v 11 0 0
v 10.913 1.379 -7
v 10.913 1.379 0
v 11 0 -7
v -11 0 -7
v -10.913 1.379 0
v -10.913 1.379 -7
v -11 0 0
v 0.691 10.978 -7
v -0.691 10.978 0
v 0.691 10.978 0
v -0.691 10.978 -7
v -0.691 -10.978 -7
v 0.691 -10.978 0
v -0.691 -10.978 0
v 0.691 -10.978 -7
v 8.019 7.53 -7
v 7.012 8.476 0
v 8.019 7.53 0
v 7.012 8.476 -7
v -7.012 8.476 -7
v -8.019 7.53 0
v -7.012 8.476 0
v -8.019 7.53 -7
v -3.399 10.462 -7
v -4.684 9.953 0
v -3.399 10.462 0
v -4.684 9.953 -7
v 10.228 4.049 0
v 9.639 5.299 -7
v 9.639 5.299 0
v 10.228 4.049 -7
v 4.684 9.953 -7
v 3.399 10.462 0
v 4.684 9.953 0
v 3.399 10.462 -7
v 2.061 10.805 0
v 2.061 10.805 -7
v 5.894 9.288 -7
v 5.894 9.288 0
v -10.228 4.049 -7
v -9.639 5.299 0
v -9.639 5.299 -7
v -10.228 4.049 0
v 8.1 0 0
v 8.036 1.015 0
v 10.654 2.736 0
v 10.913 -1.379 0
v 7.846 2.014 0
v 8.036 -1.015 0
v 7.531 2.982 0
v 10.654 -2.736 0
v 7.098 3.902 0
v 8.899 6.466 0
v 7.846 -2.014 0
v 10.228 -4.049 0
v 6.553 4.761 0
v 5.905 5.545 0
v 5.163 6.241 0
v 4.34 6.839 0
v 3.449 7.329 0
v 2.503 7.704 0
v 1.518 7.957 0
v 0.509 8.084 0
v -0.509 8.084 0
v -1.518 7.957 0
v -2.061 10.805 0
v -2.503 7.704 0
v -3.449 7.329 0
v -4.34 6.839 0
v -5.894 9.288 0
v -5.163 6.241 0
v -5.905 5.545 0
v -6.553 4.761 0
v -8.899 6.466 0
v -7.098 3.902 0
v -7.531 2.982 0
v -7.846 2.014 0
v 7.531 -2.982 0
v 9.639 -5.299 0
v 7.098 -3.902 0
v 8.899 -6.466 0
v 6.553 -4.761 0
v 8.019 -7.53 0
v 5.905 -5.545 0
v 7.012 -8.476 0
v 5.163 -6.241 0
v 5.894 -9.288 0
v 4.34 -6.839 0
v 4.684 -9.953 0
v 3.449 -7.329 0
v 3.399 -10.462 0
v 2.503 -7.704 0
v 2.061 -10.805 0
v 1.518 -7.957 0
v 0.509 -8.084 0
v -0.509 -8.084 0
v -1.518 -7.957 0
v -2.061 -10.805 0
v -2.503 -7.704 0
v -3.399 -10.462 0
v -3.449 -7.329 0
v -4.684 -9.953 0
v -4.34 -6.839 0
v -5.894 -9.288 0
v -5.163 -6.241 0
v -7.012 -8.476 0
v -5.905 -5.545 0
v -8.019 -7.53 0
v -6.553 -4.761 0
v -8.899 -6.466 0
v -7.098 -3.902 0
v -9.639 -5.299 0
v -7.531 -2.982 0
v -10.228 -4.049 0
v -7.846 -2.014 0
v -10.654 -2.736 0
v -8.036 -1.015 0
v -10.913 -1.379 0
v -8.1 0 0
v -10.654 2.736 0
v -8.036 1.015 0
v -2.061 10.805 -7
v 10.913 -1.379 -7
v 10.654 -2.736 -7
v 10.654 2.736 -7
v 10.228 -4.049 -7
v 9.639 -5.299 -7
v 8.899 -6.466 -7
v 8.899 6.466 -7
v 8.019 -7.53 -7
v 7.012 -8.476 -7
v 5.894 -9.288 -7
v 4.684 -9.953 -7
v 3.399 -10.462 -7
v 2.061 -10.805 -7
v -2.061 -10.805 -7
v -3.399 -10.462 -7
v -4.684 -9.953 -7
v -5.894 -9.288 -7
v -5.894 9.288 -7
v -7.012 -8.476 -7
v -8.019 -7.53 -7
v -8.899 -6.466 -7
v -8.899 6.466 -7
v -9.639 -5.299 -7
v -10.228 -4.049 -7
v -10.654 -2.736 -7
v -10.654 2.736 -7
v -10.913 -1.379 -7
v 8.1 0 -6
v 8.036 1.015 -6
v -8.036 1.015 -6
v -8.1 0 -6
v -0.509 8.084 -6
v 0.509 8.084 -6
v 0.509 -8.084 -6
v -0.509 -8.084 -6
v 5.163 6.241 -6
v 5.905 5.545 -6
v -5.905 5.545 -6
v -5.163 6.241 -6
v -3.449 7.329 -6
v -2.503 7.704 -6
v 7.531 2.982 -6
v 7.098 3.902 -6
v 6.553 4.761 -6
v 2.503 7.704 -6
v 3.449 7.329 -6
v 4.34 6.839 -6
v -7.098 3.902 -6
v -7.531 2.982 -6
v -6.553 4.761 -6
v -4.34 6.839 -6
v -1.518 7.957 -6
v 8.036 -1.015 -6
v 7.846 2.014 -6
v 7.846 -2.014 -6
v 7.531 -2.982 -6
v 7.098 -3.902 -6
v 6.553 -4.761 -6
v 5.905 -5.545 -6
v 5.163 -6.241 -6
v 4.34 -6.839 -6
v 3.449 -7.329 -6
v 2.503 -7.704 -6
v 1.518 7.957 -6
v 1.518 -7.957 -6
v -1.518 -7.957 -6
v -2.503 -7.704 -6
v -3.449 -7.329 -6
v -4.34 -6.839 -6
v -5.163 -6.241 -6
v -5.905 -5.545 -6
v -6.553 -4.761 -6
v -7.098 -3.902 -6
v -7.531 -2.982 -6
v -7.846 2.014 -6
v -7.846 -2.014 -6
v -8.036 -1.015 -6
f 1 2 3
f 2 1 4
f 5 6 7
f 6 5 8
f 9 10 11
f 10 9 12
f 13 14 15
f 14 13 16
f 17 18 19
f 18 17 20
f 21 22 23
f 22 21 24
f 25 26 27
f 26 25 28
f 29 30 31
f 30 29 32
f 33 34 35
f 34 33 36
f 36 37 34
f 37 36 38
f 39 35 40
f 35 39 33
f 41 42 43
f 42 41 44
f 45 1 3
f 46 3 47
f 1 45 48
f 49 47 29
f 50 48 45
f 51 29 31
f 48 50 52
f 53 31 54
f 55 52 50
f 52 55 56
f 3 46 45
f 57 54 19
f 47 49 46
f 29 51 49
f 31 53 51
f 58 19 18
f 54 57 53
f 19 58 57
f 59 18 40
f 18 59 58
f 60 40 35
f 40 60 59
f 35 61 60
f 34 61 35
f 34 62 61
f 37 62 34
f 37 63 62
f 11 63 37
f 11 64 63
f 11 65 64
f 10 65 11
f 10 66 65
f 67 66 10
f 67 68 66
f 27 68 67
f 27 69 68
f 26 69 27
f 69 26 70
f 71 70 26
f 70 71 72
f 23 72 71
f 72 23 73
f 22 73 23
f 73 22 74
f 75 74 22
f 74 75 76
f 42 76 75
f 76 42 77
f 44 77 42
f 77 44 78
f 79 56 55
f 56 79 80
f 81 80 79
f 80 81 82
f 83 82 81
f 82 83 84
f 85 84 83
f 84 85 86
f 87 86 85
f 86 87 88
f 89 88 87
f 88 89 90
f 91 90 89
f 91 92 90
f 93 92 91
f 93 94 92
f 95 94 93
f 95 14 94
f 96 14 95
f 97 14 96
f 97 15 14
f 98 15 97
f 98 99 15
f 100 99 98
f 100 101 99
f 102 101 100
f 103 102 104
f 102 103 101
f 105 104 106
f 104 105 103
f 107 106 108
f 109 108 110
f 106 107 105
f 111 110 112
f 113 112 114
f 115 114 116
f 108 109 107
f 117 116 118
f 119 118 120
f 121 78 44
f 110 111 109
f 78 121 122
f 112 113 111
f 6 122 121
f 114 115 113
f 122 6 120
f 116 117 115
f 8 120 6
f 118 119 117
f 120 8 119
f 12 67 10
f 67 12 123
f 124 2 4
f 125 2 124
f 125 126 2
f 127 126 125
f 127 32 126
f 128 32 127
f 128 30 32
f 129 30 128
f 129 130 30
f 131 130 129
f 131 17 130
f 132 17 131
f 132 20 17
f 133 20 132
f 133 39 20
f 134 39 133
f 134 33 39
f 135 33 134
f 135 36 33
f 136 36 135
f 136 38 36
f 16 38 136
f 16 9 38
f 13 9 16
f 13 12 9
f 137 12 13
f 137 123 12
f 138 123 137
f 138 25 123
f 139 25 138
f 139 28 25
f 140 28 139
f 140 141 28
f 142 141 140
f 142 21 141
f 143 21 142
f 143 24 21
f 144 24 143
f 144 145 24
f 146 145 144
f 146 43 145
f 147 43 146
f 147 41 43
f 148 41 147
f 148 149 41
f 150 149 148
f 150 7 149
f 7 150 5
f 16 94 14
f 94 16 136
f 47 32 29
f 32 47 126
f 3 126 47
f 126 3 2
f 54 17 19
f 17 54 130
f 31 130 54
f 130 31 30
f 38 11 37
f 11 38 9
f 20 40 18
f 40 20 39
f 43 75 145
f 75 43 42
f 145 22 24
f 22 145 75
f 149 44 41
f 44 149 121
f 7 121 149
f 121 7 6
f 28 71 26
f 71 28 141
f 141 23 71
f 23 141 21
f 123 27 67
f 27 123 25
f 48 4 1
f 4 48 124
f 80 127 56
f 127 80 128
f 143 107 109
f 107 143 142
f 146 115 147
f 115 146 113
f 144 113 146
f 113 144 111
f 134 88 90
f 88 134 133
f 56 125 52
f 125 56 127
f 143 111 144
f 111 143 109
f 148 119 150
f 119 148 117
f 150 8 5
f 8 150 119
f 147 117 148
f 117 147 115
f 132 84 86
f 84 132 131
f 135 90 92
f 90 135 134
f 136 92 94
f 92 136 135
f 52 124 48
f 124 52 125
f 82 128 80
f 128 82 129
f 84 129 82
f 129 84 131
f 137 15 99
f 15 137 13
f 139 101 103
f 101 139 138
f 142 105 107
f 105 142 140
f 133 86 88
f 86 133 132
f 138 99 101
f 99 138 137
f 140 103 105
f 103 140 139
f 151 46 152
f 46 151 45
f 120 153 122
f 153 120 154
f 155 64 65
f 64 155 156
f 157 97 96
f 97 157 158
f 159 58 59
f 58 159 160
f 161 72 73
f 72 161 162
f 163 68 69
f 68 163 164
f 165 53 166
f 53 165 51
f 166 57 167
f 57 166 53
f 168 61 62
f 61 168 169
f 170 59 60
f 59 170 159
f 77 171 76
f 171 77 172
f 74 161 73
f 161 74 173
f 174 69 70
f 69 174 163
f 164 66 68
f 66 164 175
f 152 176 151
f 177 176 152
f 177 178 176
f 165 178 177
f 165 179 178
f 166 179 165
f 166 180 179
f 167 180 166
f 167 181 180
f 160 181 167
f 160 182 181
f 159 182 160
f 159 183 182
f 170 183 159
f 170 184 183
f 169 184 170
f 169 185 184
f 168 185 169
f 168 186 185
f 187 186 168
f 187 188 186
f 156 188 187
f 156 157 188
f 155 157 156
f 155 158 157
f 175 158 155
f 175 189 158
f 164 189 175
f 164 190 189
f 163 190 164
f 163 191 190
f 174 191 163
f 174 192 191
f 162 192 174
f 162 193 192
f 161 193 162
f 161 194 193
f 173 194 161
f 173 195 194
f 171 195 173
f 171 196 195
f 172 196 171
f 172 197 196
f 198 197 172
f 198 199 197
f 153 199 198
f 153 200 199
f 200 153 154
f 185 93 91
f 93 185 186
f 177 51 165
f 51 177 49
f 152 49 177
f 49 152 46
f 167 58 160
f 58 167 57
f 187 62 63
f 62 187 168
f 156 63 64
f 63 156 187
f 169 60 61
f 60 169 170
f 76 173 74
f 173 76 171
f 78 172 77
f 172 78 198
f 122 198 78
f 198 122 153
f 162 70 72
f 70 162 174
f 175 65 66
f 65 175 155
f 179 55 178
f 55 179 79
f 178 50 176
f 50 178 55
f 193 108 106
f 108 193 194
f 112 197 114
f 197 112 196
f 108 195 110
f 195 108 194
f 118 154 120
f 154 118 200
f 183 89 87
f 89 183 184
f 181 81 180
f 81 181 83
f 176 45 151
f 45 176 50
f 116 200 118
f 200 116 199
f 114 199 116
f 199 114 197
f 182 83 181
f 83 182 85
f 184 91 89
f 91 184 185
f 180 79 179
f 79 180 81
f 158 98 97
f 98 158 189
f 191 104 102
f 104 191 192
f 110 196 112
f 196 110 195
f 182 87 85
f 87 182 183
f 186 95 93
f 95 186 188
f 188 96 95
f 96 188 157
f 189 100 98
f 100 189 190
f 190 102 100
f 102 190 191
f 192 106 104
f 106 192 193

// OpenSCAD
$fn = 50;


difference() {
	union() {
		translate(v = [0, 0, -7.0000000000]) {
			cylinder(h = 7, r = 11.0000000000);
		}
	}
	union() {
		#translate(v = [0, 0, -6.0000000000]) {
			cylinder(h = 6, r = 8.1000000000);
		}
	}
}
